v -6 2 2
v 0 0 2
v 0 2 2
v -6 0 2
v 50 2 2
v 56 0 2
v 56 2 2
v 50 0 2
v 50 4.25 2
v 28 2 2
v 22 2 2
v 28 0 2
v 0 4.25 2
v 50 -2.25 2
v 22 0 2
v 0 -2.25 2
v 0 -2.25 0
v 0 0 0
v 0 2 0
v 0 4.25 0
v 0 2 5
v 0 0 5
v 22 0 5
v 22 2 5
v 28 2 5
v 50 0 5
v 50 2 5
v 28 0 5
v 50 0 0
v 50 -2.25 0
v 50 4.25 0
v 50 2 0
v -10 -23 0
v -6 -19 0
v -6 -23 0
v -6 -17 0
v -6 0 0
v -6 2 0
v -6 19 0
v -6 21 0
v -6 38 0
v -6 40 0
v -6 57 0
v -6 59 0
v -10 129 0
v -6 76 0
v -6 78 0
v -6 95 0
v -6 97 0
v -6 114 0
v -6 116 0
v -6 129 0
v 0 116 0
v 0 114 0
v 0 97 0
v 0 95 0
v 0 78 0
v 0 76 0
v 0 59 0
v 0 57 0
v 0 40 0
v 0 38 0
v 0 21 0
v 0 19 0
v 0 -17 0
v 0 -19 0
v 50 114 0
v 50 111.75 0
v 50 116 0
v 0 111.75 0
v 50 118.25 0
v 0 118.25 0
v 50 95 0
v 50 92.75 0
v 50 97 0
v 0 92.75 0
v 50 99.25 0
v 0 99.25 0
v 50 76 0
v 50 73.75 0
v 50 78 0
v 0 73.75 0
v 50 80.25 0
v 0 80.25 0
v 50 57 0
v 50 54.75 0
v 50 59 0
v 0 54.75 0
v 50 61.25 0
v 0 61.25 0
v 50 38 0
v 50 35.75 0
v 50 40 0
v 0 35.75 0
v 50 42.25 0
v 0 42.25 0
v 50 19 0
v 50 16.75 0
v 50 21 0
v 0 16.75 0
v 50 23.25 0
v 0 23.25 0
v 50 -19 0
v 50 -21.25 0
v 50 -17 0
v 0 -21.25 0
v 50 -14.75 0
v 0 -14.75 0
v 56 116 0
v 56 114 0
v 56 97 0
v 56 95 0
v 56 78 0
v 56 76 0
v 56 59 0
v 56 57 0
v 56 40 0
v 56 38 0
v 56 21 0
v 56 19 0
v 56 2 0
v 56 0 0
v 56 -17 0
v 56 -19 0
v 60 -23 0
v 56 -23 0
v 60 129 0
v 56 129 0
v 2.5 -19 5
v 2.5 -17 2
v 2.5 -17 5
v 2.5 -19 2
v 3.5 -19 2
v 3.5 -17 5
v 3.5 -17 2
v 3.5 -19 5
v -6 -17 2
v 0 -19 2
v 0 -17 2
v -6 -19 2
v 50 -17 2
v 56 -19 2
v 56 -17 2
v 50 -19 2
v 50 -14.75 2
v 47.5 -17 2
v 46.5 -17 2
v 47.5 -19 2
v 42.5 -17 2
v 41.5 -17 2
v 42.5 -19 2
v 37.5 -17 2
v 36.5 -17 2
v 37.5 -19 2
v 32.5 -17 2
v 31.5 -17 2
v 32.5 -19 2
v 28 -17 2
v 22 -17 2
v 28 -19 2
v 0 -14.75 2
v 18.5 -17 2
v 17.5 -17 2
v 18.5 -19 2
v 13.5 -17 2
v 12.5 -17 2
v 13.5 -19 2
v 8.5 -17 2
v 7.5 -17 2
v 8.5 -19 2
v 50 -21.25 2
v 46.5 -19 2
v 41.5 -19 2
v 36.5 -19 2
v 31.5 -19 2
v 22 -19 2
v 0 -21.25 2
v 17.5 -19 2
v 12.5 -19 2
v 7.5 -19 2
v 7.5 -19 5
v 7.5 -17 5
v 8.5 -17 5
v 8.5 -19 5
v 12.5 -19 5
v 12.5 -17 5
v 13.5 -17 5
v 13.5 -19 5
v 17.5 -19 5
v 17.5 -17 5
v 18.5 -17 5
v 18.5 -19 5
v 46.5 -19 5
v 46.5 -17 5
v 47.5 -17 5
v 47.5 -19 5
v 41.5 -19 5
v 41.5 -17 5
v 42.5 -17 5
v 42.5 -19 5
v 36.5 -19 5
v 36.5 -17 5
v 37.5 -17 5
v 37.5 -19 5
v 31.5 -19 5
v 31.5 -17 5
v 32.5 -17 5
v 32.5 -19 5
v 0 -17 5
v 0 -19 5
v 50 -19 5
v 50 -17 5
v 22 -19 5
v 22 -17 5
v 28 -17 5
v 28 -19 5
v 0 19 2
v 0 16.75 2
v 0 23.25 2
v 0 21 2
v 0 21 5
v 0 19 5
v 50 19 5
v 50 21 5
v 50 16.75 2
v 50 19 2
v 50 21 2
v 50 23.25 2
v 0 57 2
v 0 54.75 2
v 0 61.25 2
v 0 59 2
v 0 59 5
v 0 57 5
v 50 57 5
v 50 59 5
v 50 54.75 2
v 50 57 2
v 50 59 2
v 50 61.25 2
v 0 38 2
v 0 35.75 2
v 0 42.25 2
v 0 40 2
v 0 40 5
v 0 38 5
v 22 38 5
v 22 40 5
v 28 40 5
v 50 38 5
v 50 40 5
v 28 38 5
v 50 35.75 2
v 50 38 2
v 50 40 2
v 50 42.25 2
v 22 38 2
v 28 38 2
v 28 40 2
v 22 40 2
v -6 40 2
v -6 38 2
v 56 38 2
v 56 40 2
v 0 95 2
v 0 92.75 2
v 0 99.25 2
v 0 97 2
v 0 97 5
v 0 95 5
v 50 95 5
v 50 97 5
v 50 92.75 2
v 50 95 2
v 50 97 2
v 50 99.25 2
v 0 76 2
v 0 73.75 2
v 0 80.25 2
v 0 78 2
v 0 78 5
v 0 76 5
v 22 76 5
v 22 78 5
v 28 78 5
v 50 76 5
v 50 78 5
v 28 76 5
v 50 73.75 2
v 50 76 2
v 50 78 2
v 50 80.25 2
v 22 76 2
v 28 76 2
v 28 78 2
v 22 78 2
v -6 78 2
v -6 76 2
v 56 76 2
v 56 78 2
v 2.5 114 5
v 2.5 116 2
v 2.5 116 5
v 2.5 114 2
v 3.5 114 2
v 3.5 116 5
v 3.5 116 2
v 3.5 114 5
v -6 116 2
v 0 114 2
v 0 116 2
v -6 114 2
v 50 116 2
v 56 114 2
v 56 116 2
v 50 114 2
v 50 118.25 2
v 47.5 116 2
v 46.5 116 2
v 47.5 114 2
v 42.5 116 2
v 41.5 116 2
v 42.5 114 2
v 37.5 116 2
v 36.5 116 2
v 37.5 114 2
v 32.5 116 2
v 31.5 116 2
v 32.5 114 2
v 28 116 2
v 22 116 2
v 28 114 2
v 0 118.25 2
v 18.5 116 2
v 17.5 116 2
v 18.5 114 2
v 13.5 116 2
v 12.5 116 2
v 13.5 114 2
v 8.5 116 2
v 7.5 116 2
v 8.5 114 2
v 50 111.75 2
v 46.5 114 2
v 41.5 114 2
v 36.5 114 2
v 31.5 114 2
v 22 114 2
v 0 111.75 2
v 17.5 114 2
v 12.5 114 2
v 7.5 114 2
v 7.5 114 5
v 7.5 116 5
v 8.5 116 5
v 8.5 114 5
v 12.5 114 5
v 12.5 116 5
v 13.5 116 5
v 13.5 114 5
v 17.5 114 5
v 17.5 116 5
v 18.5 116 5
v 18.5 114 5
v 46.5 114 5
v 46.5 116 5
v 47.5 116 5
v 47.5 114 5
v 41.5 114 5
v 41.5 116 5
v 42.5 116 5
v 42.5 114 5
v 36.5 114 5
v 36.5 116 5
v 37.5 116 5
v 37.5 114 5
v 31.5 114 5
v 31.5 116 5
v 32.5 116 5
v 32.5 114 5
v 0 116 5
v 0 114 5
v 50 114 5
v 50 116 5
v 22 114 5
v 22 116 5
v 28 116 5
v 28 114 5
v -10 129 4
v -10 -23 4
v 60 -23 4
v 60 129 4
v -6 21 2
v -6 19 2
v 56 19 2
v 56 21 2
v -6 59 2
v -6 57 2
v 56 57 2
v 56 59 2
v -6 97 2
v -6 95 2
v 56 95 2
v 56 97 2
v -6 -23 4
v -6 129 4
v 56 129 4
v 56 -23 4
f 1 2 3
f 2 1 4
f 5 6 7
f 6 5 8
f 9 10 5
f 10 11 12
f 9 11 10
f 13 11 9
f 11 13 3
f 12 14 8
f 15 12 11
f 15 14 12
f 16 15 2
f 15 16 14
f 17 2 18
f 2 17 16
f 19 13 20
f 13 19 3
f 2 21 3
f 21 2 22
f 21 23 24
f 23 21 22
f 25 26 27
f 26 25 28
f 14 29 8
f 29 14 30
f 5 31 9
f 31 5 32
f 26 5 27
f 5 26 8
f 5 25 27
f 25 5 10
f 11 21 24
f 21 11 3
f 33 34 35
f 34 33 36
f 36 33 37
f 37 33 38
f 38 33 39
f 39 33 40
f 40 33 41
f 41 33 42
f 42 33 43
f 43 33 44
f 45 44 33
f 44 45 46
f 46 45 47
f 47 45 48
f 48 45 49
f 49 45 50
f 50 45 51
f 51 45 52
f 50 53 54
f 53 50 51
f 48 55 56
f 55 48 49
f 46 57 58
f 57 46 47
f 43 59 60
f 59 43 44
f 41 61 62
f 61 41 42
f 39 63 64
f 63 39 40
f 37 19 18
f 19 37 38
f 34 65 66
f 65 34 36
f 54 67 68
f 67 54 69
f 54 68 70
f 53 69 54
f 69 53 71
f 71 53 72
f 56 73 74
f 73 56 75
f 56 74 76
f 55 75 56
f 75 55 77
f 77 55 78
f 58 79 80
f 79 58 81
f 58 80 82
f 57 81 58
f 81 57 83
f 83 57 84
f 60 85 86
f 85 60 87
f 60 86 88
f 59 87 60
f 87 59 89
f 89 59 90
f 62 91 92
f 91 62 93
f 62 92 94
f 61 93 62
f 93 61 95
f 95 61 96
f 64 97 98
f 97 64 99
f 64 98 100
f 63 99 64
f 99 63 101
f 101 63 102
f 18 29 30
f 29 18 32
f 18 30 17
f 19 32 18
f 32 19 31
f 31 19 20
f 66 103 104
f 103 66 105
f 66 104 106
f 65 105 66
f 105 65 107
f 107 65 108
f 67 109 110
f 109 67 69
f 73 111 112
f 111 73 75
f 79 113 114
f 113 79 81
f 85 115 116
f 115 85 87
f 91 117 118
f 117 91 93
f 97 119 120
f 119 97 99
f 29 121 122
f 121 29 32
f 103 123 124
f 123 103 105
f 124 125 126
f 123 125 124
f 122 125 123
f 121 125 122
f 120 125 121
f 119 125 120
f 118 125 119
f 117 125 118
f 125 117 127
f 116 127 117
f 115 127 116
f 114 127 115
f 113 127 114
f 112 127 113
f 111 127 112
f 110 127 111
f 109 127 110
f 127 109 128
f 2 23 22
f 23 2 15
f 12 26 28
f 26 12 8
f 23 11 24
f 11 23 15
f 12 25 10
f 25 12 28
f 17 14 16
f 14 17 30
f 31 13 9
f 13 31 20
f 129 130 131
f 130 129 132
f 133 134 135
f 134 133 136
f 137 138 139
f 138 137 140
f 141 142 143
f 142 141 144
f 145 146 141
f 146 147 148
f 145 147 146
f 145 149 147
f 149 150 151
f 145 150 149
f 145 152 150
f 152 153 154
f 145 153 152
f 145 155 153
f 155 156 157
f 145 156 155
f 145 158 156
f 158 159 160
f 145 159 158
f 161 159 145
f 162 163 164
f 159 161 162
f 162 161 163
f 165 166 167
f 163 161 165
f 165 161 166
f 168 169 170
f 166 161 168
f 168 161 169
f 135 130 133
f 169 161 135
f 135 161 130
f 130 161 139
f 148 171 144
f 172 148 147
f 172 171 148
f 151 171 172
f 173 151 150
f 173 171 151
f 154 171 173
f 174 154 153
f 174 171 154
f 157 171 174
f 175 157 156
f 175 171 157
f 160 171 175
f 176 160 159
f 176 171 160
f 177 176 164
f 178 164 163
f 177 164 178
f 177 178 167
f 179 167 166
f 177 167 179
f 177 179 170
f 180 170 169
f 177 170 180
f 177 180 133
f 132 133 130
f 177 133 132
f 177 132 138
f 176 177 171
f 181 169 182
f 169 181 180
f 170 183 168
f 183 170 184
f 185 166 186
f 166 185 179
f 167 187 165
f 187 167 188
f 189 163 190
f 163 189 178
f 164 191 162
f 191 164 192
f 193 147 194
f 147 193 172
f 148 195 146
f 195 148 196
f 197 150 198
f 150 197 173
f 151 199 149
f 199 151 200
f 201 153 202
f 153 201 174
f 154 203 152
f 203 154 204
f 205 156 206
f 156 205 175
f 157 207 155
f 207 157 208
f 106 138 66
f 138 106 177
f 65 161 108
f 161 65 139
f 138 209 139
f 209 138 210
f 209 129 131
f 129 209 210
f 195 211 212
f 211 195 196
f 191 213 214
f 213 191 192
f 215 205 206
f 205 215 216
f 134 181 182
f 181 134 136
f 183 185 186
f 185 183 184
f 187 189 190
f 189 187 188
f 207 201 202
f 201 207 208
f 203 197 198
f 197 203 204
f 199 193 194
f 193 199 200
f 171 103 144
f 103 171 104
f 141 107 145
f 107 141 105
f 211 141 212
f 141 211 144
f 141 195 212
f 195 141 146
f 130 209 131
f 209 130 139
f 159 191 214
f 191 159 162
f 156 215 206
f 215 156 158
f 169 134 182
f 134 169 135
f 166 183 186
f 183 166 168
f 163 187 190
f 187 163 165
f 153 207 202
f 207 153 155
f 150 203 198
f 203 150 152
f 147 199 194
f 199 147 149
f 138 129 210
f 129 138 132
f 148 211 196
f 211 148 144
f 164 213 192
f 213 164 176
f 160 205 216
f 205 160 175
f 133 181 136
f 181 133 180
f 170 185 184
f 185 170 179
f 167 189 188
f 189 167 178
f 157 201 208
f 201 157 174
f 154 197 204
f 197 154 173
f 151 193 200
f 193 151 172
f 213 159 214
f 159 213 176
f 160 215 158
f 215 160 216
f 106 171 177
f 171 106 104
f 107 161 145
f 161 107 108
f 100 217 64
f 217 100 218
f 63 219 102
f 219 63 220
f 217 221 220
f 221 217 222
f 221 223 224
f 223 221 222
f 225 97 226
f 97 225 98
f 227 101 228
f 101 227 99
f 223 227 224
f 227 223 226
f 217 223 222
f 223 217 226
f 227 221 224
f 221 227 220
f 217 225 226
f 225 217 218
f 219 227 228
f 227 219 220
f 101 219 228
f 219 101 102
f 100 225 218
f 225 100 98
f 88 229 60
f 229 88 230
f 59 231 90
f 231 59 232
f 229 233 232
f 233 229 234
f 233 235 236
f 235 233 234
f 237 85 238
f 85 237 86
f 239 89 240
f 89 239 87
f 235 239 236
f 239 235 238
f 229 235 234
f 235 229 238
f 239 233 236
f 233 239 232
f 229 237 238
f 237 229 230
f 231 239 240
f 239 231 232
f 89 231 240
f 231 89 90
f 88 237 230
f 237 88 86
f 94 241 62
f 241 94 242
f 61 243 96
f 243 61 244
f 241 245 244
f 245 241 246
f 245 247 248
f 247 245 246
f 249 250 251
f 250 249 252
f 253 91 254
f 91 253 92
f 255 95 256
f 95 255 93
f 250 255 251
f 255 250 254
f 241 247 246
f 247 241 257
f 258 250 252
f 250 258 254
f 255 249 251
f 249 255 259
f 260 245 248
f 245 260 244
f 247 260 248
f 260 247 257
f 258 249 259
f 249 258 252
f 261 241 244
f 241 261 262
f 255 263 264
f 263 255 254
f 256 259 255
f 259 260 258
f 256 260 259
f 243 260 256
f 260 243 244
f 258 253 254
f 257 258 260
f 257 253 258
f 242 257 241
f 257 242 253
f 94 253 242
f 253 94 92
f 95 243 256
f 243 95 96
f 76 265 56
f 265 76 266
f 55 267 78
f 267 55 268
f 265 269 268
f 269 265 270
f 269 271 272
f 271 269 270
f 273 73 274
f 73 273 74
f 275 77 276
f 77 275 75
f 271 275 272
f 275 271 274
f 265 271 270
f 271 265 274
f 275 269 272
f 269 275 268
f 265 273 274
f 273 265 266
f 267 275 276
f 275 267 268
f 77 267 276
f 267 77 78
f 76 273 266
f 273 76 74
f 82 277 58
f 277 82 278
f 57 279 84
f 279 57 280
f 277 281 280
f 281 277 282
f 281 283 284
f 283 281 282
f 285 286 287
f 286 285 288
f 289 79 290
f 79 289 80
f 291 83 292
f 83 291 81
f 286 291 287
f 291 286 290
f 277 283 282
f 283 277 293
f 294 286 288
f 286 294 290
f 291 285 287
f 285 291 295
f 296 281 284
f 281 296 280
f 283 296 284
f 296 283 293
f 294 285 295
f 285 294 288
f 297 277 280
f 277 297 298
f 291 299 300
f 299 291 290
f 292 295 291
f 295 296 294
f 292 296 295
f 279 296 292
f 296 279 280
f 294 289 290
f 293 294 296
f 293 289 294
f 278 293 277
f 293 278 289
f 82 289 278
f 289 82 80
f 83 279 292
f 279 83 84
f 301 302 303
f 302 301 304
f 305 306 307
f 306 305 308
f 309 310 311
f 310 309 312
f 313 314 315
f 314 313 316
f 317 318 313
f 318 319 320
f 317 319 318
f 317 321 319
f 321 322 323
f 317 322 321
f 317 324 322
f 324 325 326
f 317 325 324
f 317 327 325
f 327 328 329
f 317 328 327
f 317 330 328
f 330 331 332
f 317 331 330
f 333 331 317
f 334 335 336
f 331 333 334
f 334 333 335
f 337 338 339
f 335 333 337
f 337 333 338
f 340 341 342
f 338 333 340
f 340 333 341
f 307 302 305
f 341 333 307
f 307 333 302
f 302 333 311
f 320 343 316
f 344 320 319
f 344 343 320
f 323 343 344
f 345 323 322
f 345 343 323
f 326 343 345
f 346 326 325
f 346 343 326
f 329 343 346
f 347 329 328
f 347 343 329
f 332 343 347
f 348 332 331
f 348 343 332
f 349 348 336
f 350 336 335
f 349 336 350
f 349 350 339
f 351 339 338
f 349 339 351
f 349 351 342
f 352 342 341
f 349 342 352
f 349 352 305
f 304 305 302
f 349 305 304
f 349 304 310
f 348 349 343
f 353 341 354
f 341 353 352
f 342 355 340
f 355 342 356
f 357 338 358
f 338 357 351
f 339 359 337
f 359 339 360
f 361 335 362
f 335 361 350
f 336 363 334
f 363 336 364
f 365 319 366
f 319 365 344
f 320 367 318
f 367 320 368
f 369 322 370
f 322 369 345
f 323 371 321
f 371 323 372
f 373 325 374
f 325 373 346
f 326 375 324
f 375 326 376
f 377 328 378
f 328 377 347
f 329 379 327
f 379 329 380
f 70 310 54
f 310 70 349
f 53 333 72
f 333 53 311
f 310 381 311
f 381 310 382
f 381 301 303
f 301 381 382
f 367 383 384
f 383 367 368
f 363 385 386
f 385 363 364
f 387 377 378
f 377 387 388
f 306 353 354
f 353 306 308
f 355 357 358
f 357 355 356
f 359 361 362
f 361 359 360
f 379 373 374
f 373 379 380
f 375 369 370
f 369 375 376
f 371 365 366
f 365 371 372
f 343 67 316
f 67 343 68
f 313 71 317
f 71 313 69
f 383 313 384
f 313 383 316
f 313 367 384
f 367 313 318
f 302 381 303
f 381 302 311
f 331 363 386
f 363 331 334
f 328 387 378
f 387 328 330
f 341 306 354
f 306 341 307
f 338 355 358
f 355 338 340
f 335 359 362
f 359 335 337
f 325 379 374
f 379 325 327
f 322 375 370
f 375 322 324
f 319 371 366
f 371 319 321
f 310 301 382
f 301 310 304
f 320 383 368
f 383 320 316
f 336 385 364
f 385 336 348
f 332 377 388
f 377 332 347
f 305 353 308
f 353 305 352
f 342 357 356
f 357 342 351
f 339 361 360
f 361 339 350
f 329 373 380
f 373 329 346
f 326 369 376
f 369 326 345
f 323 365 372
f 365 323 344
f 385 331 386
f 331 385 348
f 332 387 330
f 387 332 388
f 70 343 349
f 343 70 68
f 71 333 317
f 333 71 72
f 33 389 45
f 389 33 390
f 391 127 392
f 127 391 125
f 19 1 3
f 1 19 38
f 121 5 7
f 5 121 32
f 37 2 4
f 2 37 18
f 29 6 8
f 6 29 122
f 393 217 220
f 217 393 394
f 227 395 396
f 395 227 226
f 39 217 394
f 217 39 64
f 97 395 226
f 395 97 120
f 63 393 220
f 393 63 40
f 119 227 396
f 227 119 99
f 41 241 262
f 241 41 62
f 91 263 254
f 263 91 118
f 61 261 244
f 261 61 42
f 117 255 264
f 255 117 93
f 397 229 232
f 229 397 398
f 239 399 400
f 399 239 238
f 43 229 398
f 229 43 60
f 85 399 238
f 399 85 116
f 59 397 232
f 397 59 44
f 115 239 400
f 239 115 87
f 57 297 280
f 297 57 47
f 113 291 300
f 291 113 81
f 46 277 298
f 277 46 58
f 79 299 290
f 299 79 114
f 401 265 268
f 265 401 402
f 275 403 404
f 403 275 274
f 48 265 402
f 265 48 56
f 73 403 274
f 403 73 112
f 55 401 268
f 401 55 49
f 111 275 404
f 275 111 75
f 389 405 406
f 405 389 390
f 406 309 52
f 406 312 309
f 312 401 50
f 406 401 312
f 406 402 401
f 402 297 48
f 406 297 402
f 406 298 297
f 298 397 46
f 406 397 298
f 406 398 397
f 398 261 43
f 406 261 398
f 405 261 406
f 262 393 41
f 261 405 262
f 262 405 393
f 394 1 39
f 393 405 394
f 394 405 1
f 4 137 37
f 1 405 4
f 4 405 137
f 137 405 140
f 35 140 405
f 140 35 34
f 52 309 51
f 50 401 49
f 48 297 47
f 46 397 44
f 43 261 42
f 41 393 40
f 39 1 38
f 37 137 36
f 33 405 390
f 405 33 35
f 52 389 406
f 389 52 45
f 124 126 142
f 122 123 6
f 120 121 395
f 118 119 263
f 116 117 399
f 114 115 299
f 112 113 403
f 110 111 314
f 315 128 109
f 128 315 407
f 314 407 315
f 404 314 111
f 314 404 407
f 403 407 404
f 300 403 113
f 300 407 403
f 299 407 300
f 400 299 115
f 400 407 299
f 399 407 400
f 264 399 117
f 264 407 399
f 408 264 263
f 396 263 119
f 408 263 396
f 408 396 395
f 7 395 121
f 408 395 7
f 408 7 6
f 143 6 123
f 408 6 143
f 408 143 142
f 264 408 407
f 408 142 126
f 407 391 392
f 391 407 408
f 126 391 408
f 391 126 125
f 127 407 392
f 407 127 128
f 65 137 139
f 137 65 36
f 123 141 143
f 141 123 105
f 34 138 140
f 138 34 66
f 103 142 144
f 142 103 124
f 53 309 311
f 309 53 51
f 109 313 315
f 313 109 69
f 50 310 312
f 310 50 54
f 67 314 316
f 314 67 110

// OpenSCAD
// file: end_stick.scad
module end_stick()
{
    union(){
        // Main body of the part
        length = 50;
        width = 2;
        height = 5;
        base_height = 2;
        void_length = 6;
        difference() {
            cube(size=[length,width,height]);
            void_x = (length - void_length)/2;
            translate([void_x,-1,base_height]) cube(size=[void_length,5,10]);
            term_voids = 4;
            term_void_length = (length-10)/(2*term_voids);
            for(i=[1:term_voids]){
                translate([term_void_length*i-term_void_length/2,-1,base_height]) cube(size=[1,5,10]);
            }
            for(i=[1:term_voids]){
                translate([length-(term_void_length*i-term_void_length/2)-1,-1,base_height]) cube(size=[1,5,10]);
            }
        }
        
        // Base
        translate([0,-2.25,0]) cube(size=[50,6.5,2]);
    }
    
}

end_stick();
// file: small_stick.scad
module small_stick()
{
    union(){
        // Main body of the part
        length = 50;
        width = 2;
        height = 5;
        base_height = 2;
        void_length = 6;
        difference() {
            cube(size=[length,width,height]);
            void_x = (length - void_length)/2;
            translate([void_x,-1,base_height]) cube(size=[void_length,5,10]);
        }
        
        // Base
        translate([0,-2.25,0]) cube(size=[50,6.5,2]);
    }
    
}
// file: long_stick.scad
module long_stick()
{
    union(){
        // Main body of the part
        length = 50;
        width = 2;
        height = 5;
        base_height = 2;
        void_length = 1;
        difference() {
            cube(size=[length,width,height]);
        }
        
        // Base
        translate([0,-2.25,0]) cube(size=[50,6.5,2]);
    }
    
}
// main file
include <long_stick.scad>;
include <small_stick.scad>;
include <end_stick.scad>;

distance = 19;
num = 2;

module holder(){
    // Y holders
    translate([-10,-23,0]) cube(size=[4,152,4]);
    translate([56,-23,0]) cube(size=[4,152,4]);
    
    // X holders
    for (i=[0:num]){
        translate([-10,distance*2*i,0])  cube(size=[70,2,2]);
        translate([-10,distance*(2*i+1),0])  cube(size=[70,2,2]);
    }
    
    // End X holders
    translate([-10,distance*-1,0])  cube(size=[70,2,2]);
    translate([-10,distance*2*(num+1),0])  cube(size=[70,2,2]);
}


translate([0,distance*-1,0]) end_stick();
for (i=[0:num]){
    translate([0,distance*(2*i+1),0]) long_stick();
    translate([0,distance*2*i,0]) small_stick();  
}
translate([0,distance*2*(num+1),0]) end_stick();

holder();
